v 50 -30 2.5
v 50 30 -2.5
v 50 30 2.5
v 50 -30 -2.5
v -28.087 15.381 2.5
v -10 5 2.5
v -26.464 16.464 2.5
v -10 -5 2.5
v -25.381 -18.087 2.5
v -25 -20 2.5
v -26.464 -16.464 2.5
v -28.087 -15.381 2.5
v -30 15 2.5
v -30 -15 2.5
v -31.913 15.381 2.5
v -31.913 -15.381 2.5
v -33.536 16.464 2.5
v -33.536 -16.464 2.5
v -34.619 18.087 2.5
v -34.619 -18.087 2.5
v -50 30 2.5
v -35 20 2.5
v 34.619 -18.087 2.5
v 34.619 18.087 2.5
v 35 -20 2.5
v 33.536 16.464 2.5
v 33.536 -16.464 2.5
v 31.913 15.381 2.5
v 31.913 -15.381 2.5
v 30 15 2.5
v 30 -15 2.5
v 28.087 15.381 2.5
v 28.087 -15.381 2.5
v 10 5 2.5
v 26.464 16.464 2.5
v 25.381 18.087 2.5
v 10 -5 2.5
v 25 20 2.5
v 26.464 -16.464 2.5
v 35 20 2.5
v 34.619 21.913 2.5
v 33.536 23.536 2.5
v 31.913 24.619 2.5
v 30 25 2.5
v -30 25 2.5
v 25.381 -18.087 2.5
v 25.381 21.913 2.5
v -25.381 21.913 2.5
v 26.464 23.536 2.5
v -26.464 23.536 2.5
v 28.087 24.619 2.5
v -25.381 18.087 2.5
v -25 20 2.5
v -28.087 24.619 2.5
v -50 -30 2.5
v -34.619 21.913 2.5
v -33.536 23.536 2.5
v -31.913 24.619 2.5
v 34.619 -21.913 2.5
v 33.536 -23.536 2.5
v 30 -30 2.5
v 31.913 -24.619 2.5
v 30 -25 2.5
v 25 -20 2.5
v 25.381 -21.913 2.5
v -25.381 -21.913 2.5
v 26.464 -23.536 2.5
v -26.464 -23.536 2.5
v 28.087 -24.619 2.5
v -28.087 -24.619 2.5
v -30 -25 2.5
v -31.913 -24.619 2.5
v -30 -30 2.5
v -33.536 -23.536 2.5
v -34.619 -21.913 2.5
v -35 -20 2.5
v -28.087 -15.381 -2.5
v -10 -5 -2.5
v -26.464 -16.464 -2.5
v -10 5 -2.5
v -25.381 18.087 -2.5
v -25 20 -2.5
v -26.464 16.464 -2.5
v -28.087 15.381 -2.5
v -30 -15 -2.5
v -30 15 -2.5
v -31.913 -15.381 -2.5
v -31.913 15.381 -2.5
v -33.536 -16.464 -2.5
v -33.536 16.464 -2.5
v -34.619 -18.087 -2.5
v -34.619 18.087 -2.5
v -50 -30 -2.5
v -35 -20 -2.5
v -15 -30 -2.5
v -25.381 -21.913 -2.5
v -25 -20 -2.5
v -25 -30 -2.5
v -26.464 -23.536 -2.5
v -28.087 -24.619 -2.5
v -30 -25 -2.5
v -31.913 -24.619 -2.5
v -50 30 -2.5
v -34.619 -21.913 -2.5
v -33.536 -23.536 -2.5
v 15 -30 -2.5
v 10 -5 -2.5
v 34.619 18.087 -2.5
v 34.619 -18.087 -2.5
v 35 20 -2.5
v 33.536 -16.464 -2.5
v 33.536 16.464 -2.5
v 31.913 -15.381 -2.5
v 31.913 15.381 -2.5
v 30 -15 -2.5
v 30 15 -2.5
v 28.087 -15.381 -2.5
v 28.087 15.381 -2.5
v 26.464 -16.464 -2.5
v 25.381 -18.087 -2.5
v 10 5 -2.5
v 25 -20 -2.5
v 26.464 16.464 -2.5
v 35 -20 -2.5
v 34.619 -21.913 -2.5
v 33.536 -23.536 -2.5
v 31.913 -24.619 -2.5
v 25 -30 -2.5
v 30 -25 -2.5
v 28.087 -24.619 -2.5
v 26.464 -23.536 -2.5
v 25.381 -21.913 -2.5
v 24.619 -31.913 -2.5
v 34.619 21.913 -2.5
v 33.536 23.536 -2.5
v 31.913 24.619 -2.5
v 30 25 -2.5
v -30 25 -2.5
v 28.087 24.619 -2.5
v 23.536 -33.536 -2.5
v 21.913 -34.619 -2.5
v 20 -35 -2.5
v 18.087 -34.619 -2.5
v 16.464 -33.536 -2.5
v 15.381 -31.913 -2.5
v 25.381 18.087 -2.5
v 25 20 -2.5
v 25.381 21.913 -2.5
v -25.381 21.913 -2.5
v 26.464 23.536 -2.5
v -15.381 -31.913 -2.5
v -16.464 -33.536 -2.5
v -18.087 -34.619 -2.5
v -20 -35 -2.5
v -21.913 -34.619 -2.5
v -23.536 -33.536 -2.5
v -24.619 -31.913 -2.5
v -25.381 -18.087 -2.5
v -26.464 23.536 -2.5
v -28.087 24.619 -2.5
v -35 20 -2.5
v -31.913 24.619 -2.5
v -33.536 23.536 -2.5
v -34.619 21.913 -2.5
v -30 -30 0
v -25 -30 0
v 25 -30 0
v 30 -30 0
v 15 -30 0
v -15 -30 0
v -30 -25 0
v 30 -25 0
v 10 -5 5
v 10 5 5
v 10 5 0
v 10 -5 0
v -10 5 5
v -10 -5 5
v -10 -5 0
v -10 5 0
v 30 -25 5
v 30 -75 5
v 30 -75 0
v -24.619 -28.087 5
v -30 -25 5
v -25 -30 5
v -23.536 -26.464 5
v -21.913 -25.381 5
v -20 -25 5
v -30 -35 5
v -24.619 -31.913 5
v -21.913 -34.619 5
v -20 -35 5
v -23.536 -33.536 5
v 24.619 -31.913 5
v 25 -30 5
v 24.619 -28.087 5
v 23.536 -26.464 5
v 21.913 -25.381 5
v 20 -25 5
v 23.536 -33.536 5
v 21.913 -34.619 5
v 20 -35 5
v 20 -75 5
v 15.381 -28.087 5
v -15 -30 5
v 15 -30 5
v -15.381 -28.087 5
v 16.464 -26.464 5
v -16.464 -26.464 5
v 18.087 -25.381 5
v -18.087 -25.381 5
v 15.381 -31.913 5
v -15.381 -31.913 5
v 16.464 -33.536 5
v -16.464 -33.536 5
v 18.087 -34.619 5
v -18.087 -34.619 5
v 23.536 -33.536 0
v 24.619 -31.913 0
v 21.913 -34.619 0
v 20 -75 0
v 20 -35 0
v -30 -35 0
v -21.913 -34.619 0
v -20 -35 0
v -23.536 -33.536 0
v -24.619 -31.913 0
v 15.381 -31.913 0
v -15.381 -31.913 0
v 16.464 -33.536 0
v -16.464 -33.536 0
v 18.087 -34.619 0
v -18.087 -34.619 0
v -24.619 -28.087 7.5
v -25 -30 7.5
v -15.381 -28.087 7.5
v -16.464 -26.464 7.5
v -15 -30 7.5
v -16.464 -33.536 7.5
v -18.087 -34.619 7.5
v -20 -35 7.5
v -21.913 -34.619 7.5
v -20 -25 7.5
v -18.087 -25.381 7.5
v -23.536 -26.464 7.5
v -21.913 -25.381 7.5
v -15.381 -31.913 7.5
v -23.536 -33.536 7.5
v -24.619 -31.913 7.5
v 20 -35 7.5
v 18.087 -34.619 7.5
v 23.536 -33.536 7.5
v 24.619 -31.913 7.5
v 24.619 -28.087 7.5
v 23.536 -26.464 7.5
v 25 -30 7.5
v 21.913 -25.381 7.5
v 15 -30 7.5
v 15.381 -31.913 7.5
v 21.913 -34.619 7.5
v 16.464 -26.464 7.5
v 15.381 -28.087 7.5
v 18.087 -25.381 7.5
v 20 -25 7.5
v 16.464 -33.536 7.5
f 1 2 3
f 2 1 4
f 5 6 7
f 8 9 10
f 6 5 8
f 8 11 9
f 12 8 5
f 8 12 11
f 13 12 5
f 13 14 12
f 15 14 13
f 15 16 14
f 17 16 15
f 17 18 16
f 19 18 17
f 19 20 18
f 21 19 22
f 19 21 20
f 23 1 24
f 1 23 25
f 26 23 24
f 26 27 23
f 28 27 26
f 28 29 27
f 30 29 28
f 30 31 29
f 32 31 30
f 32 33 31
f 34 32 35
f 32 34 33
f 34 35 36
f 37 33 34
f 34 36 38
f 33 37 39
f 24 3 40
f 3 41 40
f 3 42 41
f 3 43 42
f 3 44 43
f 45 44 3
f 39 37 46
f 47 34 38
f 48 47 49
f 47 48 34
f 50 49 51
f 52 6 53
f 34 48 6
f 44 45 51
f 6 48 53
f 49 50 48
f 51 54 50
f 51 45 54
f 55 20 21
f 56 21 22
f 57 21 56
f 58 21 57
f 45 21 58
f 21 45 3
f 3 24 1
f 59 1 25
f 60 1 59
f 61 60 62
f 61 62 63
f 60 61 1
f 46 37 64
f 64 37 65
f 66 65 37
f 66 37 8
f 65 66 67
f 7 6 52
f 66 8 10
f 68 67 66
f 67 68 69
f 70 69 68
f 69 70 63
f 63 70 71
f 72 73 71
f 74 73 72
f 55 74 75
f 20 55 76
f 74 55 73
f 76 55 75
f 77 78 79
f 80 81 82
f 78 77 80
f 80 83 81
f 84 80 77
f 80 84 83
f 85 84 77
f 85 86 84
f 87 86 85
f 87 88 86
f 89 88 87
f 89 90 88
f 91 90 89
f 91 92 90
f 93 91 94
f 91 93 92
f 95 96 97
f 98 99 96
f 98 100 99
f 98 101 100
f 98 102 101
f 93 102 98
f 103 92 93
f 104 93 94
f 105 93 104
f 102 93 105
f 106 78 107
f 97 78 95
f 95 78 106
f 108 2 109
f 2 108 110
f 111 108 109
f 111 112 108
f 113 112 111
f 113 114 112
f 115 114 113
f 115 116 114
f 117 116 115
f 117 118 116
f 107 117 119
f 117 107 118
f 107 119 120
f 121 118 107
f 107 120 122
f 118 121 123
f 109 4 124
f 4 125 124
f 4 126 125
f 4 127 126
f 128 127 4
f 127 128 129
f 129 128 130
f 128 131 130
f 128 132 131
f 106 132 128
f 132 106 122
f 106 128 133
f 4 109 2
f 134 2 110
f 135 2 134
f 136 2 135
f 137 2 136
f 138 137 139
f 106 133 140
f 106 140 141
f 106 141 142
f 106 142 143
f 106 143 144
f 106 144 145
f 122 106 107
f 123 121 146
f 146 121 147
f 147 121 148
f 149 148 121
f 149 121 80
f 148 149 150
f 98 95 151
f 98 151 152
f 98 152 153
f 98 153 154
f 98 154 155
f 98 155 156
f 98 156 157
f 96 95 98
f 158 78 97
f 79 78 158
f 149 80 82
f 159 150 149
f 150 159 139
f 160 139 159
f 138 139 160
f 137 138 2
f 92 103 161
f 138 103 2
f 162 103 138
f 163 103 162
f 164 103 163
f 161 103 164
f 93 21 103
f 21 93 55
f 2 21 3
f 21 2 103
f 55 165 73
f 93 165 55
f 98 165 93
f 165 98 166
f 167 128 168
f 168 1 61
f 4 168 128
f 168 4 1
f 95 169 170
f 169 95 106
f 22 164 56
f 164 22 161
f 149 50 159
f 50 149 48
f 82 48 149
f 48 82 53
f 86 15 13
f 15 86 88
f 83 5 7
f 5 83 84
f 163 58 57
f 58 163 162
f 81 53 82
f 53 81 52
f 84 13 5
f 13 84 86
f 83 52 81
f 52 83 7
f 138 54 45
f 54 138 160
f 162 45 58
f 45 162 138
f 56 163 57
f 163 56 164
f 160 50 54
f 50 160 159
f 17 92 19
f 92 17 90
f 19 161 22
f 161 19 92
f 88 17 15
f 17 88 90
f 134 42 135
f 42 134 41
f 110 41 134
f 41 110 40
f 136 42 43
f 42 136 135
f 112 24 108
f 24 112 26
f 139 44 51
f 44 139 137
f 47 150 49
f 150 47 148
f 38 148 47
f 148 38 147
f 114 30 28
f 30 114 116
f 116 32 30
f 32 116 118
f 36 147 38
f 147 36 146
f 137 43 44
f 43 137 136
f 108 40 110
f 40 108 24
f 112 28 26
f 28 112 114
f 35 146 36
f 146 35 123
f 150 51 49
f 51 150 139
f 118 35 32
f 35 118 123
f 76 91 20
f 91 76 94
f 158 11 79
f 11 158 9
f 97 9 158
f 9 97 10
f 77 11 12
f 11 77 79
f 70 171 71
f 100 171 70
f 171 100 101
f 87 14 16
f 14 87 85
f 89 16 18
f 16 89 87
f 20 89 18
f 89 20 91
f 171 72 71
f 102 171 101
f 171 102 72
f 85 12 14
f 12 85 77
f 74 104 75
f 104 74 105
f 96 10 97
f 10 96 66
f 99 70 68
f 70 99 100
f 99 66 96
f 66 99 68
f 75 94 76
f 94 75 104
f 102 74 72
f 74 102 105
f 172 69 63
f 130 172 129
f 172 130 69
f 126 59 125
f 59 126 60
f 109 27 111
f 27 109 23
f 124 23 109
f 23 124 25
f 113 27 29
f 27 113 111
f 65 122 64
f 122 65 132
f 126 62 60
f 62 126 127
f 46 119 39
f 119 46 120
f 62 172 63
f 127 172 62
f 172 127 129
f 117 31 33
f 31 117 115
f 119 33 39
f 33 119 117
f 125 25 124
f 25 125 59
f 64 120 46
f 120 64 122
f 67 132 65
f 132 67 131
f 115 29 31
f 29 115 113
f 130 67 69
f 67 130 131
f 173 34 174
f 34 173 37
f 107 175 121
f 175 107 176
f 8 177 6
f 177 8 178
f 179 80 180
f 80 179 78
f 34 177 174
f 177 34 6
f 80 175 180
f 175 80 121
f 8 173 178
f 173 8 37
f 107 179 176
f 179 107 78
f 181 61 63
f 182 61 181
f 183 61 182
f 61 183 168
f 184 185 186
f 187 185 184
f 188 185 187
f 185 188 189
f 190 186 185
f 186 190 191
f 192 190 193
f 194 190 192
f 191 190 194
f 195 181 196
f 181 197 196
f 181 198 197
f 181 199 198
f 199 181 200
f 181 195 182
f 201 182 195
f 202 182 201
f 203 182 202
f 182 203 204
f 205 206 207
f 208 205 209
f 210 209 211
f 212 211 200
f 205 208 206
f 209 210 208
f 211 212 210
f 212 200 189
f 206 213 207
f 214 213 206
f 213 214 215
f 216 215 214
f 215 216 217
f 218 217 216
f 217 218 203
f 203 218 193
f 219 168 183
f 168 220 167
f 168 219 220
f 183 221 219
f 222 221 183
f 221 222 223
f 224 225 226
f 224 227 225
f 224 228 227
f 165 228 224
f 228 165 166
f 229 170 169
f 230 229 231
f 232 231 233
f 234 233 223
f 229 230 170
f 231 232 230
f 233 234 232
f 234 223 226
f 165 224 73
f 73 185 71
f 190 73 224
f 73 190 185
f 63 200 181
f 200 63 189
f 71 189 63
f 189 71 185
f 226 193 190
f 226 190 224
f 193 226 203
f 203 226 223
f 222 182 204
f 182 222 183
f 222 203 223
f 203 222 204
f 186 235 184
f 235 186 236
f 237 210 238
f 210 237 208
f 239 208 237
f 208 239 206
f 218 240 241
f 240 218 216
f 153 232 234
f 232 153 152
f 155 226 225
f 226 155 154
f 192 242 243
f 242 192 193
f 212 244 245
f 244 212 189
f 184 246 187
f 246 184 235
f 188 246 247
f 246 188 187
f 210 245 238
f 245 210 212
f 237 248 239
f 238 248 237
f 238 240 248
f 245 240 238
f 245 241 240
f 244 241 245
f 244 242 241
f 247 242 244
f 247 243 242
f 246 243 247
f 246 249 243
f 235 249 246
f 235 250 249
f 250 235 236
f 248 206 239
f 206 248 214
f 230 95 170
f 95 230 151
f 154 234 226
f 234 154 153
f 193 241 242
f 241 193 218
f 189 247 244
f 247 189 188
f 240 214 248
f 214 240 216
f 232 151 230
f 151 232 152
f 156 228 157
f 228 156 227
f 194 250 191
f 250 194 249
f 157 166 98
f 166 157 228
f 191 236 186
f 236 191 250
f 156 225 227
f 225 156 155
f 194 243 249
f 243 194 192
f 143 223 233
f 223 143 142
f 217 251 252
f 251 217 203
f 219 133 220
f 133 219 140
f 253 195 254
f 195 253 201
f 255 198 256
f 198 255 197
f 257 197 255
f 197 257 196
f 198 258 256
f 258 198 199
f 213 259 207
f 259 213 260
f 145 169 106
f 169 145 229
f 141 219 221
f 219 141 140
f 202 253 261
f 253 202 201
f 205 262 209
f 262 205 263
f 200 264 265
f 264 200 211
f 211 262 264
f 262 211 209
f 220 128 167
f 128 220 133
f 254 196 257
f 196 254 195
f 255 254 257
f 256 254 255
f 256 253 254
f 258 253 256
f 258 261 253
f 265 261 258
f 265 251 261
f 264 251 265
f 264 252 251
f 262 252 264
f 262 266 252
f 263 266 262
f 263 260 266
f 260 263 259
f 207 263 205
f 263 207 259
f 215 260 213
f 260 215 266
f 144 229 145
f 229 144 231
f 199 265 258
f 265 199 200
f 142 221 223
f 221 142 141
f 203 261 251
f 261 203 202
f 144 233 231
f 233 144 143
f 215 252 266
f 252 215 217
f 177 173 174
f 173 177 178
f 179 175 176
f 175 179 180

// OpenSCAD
// Base Plate
module base_plate() {
    difference() {
        // Main rectangular plate
        cube([100, 60, 5], center = true);
        
        // Circular holes
        translate([-30, 20, 0]) cylinder(r = 5, h = 10, center = true);
        translate([30, 20, 0]) cylinder(r = 5, h = 10, center = true);
        translate([-30, -20, 0]) cylinder(r = 5, h = 10, center = true);
        translate([30, -20, 0]) cylinder(r = 5, h = 10, center = true);
        
        // Rectangular slot
        translate([0, 0, 0]) cube([20, 10, 10], center = true);
    }
}

// Rectangular Block
module rectangular_block() {
    cube([20, 10, 5], center = true);
}

// L-Shaped Bracket
module L_shaped_bracket() {
    union() {
        // Horizontal arm
        translate([0, 0, 0]) cube([60, 10, 5], center = true);
        
        // Vertical arm
        translate([25, -25, 0]) rotate([0, 0, 90]) cube([40, 10, 5], center = true);
        
        // Circular holes on horizontal arm
        translate([-20, 0, 0]) cylinder(r = 5, h = 10, center = true);
        translate([20, 0, 0]) cylinder(r = 5, h = 10, center = true);
    }
}

// Assembly
module assembly() {
    // Layer 1: Rectangular Block inserted into Base Plate
    base_plate();
    translate([0, 0, 2.5]) rectangular_block();
    
    // Layer 3: L-Shaped Bracket mounted onto Base Plate
    translate([0, -30, 2.5]) L_shaped_bracket();
}

// Render the assembly
assembly();
